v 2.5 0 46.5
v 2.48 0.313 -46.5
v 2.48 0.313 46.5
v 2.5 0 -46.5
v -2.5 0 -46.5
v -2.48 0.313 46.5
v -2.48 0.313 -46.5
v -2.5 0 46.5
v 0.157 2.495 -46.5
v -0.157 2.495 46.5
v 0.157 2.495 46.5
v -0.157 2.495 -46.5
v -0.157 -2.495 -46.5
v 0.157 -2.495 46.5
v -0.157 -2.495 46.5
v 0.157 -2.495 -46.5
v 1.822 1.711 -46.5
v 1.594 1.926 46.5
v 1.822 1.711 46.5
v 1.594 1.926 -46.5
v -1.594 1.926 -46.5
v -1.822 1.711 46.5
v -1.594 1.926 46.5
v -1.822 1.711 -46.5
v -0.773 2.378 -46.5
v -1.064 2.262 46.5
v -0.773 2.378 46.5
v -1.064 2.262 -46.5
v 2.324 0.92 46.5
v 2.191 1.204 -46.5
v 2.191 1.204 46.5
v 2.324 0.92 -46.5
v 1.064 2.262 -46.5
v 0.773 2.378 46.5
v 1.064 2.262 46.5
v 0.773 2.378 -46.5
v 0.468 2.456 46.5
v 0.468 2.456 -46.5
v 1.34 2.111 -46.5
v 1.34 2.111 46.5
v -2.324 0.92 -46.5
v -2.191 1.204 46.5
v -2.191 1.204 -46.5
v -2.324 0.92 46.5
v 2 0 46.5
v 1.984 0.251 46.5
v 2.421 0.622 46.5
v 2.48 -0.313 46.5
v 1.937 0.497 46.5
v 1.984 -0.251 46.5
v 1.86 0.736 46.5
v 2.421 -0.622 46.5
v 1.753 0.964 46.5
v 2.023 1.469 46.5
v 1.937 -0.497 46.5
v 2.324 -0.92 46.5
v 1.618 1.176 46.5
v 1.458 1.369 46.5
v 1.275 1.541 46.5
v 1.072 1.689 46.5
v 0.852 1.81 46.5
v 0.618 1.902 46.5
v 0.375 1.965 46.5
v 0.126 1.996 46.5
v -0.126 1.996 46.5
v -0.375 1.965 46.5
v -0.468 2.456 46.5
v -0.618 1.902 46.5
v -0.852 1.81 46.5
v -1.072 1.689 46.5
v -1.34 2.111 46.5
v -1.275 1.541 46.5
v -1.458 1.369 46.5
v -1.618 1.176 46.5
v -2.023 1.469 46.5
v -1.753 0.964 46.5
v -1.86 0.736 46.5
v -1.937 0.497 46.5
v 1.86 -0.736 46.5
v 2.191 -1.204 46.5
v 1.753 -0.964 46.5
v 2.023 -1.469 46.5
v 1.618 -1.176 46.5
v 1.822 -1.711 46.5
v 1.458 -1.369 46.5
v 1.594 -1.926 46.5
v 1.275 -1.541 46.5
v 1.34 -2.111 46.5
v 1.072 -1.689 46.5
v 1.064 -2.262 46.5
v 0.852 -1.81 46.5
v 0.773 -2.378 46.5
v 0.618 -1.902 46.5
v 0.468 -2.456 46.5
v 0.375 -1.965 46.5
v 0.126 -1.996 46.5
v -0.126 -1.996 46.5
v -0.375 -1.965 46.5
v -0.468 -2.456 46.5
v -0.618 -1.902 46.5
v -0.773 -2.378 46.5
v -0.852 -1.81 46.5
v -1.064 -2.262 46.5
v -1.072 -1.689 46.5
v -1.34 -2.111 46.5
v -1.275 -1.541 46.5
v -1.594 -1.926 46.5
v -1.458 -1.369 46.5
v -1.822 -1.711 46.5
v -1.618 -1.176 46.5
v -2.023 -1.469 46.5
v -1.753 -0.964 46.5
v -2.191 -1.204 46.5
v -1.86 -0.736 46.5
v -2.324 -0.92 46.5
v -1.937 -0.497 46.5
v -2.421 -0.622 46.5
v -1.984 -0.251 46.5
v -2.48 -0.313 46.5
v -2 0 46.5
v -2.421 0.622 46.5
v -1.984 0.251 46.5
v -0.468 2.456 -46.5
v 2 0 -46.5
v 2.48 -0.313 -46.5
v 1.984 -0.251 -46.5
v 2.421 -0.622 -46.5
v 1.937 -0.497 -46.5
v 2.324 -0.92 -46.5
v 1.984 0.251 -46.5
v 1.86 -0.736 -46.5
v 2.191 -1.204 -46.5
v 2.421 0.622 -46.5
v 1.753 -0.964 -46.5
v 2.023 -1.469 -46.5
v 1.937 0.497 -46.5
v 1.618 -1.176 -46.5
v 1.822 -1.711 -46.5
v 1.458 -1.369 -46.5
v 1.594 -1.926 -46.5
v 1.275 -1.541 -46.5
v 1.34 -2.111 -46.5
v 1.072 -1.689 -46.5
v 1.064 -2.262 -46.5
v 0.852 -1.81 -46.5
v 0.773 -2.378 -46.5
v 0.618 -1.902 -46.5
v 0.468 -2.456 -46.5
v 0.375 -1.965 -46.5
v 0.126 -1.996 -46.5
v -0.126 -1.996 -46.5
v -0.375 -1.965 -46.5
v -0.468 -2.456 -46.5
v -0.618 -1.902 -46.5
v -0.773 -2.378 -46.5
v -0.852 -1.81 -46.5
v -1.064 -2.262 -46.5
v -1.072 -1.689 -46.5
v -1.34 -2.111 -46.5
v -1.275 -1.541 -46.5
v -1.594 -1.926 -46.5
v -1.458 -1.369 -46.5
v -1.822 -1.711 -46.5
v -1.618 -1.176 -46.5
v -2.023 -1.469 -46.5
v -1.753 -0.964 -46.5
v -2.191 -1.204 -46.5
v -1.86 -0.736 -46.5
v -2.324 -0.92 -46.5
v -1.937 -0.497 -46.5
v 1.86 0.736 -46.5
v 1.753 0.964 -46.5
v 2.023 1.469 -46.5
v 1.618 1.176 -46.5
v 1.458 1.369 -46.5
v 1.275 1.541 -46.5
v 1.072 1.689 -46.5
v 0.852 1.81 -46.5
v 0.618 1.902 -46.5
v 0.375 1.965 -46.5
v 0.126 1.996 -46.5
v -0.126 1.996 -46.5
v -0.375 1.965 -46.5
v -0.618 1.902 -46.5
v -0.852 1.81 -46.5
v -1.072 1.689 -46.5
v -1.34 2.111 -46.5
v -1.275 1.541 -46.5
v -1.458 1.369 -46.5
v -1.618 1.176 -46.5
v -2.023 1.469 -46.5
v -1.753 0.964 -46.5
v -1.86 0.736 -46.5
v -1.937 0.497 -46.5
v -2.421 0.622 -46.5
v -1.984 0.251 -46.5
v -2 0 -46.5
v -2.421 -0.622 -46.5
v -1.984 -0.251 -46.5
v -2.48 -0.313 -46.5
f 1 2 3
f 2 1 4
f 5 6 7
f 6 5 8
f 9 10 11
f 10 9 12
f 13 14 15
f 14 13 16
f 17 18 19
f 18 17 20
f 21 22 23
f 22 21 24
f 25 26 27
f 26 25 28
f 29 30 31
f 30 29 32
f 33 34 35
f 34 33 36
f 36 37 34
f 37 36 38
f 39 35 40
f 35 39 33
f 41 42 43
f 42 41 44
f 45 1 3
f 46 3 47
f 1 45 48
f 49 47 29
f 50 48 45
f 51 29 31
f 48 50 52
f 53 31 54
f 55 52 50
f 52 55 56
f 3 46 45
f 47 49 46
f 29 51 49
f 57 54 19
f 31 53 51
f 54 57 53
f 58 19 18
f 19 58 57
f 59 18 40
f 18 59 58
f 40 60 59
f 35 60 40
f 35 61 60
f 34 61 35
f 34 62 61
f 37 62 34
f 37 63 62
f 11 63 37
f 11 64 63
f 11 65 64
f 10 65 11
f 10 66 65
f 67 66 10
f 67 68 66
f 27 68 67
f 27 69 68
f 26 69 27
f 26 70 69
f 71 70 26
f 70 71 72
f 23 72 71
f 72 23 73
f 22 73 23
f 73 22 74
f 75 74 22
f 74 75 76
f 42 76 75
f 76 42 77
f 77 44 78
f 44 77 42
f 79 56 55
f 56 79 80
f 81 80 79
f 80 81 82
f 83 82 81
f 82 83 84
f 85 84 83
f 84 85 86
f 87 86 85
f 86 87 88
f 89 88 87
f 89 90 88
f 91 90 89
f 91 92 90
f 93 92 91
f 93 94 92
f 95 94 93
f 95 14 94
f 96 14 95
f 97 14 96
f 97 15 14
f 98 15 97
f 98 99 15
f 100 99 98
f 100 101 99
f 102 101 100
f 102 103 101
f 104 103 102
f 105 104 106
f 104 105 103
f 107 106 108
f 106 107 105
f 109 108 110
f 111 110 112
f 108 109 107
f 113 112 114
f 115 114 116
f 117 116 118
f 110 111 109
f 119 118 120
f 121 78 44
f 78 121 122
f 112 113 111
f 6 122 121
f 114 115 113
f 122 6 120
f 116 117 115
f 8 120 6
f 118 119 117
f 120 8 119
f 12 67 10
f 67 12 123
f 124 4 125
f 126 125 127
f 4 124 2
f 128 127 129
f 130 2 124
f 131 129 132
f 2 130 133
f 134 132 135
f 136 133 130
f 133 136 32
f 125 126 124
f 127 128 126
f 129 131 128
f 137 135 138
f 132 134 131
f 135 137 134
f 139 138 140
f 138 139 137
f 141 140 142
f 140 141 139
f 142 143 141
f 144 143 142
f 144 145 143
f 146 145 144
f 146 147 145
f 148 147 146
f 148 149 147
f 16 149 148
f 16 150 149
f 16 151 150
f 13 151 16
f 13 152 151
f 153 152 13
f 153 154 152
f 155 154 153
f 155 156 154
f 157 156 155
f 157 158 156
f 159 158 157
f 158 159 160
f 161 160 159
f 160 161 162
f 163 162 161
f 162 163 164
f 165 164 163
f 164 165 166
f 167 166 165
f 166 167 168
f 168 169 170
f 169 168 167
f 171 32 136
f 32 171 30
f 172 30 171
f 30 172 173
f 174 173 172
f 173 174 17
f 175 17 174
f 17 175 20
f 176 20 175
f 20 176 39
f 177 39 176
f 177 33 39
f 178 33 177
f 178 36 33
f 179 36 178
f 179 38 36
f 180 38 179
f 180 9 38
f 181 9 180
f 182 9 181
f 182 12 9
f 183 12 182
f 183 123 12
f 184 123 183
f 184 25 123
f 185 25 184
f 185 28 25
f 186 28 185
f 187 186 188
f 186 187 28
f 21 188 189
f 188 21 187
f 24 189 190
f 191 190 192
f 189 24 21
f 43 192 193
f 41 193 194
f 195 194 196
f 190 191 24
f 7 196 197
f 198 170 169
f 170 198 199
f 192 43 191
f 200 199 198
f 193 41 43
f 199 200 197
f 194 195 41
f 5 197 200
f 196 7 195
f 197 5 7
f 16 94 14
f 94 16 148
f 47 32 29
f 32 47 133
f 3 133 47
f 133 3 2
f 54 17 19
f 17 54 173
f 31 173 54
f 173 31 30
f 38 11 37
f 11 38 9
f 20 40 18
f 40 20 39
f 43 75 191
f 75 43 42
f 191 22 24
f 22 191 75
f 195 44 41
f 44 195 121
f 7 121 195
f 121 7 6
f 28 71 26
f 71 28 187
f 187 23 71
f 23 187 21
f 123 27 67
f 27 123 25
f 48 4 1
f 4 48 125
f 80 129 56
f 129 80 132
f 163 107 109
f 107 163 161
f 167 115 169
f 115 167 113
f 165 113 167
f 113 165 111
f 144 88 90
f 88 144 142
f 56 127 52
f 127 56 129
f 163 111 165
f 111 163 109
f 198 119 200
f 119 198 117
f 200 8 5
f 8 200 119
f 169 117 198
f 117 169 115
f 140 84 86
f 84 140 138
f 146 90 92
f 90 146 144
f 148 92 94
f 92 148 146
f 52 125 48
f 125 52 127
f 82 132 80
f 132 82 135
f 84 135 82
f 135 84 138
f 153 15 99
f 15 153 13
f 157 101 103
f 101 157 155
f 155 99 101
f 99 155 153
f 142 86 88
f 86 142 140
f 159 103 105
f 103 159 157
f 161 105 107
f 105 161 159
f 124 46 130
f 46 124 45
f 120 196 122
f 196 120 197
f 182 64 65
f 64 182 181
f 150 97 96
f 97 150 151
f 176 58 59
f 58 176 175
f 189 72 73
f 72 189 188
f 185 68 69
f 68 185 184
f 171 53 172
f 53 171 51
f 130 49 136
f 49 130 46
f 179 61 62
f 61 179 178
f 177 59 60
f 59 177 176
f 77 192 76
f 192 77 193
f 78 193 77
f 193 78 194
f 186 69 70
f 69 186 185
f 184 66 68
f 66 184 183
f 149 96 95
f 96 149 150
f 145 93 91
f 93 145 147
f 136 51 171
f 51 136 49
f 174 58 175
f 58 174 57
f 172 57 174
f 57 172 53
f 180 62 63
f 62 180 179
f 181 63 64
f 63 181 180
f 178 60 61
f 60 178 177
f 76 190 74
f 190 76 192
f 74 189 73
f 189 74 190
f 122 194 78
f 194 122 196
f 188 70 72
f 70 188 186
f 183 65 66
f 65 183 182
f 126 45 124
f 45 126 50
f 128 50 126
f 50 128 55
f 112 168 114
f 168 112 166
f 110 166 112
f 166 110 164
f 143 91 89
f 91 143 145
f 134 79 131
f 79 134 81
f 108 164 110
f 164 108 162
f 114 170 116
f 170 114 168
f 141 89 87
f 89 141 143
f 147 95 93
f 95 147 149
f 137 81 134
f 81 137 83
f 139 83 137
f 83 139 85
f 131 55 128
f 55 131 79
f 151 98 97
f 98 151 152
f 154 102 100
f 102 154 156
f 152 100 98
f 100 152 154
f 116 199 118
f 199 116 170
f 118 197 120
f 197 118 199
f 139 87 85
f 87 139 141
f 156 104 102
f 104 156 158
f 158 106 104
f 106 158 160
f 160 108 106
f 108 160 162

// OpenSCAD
$fn = 50;


difference() {
	union() {
		translate(v = [0, 0, -46.5000000000]) {
			cylinder(h = 93, r = 2.5000000000);
		}
	}
	union() {
		translate(v = [0, 0, -100.0000000000]) {
			cylinder(h = 200, r = 2);
		}
	}
}
